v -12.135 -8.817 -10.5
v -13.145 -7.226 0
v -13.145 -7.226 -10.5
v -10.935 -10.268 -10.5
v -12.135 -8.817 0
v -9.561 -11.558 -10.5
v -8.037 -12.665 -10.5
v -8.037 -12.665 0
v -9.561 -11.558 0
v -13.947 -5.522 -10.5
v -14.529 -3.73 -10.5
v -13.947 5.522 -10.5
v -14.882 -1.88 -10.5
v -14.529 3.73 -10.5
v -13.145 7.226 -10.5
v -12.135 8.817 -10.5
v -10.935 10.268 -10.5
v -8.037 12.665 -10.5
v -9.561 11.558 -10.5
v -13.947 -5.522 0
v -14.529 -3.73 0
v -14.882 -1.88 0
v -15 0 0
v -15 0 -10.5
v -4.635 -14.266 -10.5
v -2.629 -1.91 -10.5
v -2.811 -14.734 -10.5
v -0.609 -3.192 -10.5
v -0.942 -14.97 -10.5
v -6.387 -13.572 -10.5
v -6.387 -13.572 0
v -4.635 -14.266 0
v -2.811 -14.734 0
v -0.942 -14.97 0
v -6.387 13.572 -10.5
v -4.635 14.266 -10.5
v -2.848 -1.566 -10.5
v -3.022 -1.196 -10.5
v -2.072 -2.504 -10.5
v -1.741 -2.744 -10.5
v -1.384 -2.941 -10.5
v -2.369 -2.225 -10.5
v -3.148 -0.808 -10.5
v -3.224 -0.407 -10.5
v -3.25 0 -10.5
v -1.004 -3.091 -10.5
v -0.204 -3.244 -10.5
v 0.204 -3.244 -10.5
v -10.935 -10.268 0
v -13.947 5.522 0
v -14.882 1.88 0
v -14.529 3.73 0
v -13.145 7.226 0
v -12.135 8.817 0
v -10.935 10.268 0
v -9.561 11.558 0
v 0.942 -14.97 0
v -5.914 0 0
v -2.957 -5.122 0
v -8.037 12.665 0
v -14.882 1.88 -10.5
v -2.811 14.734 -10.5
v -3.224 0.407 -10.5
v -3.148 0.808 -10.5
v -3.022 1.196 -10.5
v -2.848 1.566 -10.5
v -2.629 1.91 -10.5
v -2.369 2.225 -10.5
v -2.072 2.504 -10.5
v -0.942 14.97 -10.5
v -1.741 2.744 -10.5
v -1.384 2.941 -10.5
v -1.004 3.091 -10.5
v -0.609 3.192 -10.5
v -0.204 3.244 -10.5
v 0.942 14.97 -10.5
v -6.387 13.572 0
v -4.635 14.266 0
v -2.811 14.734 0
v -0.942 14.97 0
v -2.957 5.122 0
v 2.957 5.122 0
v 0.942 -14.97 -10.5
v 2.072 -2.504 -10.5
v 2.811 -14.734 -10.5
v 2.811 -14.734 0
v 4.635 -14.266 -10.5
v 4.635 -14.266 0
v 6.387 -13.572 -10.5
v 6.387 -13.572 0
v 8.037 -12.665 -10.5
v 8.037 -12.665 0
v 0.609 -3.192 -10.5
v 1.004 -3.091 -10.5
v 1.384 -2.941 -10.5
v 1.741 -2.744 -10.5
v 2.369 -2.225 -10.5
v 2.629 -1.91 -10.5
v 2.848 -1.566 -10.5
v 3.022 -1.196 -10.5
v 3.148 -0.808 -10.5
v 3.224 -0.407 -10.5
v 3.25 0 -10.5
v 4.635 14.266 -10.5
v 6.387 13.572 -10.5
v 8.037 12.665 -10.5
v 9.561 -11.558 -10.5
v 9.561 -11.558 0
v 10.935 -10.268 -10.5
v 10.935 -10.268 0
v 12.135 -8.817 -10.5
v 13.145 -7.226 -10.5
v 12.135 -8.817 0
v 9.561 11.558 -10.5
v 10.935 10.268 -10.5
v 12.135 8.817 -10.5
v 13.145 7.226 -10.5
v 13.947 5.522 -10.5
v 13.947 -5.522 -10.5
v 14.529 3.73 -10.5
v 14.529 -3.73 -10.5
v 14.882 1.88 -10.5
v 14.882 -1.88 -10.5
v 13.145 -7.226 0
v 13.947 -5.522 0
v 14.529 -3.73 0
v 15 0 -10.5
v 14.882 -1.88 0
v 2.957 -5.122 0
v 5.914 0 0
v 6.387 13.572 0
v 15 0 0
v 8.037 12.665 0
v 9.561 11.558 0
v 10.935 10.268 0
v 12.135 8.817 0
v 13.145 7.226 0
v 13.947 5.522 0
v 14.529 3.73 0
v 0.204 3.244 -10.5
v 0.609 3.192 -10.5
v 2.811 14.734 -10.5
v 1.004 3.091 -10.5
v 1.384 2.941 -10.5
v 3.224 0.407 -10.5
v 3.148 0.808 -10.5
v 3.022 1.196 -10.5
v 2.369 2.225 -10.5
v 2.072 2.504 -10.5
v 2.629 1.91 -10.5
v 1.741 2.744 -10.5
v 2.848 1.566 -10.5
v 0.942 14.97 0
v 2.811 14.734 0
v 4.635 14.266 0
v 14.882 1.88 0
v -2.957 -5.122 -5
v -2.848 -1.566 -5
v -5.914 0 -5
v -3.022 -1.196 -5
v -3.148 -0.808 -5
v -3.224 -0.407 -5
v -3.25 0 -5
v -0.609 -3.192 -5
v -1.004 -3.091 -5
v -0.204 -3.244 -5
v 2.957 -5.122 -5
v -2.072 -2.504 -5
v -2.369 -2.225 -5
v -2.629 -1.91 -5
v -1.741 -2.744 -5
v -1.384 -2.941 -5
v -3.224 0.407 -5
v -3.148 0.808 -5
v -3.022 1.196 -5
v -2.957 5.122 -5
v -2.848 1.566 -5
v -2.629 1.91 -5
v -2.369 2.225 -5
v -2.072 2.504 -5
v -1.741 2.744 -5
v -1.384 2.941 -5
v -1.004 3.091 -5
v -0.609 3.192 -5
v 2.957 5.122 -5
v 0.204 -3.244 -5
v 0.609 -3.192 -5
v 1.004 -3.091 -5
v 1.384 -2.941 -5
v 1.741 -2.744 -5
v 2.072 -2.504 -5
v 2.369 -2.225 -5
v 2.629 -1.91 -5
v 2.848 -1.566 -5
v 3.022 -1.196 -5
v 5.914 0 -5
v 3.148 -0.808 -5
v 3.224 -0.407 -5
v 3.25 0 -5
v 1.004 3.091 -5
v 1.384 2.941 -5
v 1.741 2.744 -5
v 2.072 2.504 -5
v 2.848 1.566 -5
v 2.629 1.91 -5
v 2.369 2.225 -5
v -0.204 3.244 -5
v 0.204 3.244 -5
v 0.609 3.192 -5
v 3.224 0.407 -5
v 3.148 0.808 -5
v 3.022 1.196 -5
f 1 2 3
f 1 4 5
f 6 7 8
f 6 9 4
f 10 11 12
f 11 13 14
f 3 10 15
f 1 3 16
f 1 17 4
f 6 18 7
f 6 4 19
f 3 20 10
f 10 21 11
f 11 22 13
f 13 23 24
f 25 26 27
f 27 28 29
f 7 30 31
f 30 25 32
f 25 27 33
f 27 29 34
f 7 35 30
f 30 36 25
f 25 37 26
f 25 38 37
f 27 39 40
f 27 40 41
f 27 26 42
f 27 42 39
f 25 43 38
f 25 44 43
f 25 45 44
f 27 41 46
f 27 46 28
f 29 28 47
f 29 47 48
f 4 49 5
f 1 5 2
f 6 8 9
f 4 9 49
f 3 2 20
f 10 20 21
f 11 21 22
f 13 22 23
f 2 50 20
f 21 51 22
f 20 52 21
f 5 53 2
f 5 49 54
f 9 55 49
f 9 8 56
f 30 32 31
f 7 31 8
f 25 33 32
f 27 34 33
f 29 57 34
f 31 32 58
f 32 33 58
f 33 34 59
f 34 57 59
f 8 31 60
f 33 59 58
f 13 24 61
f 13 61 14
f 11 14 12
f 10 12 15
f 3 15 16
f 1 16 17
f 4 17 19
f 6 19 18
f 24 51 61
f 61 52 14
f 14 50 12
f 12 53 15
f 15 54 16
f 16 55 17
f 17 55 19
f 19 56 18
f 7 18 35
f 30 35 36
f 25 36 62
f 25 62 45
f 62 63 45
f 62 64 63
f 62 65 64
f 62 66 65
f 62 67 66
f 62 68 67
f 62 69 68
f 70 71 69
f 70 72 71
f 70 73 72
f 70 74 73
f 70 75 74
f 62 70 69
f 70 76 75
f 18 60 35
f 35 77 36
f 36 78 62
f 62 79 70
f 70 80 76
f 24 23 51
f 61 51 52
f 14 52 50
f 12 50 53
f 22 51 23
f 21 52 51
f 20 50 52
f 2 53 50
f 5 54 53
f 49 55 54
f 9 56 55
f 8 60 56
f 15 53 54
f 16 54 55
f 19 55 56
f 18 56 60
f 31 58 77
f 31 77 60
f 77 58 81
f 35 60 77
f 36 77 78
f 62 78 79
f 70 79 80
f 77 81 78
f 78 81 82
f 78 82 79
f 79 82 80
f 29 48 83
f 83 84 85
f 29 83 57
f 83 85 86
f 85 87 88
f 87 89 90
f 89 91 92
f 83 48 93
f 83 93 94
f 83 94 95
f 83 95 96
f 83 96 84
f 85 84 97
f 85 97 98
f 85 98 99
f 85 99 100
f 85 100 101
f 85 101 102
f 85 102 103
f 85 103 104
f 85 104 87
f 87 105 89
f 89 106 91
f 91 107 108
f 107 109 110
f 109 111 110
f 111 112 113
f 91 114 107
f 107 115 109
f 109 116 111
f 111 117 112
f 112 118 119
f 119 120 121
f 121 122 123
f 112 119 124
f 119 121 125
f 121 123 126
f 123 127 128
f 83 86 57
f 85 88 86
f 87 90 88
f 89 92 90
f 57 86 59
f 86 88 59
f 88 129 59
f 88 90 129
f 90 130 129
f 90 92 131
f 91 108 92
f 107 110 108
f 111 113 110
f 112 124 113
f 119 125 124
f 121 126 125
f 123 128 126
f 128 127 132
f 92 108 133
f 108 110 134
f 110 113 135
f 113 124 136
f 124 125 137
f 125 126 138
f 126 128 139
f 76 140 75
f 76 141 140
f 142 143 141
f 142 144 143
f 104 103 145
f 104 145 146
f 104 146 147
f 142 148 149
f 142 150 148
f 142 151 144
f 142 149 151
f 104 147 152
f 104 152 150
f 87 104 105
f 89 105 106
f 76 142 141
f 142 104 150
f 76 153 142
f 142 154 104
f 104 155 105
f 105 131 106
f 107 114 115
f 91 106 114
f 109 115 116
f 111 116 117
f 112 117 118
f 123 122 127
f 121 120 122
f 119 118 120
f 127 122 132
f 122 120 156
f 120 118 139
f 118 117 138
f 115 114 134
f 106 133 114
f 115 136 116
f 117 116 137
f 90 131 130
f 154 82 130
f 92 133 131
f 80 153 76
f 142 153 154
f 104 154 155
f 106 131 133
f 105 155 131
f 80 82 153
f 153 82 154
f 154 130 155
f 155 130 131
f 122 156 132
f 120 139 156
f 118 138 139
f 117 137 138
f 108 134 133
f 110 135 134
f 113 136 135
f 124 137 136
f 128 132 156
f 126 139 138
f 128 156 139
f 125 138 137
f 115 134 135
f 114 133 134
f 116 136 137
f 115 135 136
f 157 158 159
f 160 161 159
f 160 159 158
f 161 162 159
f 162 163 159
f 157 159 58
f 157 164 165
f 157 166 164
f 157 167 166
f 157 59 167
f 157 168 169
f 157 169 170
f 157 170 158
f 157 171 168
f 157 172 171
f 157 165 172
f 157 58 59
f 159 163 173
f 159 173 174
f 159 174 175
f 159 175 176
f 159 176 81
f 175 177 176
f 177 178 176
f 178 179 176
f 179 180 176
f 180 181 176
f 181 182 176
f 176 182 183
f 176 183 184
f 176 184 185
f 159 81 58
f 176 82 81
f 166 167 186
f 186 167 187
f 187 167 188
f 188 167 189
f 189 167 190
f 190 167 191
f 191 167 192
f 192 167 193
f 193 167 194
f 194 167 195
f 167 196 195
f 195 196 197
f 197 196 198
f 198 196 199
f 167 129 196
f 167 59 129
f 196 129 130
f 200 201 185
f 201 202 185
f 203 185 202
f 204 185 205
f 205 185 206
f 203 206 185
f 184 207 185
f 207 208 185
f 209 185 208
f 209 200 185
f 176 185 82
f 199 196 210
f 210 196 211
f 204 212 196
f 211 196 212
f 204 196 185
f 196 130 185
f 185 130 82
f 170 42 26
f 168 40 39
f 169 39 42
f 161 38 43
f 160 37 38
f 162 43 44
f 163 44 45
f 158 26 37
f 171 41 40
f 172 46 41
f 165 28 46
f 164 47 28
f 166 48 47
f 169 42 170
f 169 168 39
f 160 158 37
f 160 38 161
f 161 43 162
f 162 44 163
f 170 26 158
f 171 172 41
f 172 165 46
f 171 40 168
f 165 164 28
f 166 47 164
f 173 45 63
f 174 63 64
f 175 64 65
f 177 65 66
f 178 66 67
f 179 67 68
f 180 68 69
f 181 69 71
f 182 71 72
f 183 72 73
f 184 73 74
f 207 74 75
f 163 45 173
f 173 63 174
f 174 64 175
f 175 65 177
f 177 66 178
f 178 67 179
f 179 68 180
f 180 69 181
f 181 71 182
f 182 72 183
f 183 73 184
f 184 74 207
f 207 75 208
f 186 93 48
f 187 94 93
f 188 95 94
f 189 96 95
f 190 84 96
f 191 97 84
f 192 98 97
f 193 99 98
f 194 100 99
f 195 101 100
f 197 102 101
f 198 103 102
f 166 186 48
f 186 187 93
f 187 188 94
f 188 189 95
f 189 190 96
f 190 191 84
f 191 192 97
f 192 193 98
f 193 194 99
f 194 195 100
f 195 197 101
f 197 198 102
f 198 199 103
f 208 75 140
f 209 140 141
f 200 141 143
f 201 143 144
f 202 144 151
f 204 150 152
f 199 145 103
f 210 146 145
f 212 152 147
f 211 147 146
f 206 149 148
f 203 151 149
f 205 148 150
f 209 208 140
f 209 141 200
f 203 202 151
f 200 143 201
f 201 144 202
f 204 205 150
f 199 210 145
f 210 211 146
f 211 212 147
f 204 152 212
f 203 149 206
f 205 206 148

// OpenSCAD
$fn = 50;

difference() {
	union() {
		translate(v = [0, 0, -10.5]) {
			cylinder(h = 10.5, r = 15.0);
		}
		#translate(v = [0, 0, -12.0]) {
			cylinder(h = 12, r = 2.875);
		}
	}
	union() {
		translate(v = [0, 0, 0]) {
			rotate(a = [0, 0, 0]) {
				difference() {
					union() {
						translate(v = [0, 0, -5]) {
							linear_extrude(height = 5) {
								polygon(points = [[5.914249999999999, 0.0], [2.957125, 5.1218907443321156], [-2.9571249999999982, 5.1218907443321156], [-5.914249999999999, 7.242867331857232e-16], [-2.9571250000000022, -5.121890744332115], [2.9571249999999956, -5.121890744332118]]);
							}
						}
					}
					union();
				}
			}
		}
		#translate(v = [0, 0, -100.0]) {
			cylinder(h = 200, r = 3.25);
		}
	}
}
